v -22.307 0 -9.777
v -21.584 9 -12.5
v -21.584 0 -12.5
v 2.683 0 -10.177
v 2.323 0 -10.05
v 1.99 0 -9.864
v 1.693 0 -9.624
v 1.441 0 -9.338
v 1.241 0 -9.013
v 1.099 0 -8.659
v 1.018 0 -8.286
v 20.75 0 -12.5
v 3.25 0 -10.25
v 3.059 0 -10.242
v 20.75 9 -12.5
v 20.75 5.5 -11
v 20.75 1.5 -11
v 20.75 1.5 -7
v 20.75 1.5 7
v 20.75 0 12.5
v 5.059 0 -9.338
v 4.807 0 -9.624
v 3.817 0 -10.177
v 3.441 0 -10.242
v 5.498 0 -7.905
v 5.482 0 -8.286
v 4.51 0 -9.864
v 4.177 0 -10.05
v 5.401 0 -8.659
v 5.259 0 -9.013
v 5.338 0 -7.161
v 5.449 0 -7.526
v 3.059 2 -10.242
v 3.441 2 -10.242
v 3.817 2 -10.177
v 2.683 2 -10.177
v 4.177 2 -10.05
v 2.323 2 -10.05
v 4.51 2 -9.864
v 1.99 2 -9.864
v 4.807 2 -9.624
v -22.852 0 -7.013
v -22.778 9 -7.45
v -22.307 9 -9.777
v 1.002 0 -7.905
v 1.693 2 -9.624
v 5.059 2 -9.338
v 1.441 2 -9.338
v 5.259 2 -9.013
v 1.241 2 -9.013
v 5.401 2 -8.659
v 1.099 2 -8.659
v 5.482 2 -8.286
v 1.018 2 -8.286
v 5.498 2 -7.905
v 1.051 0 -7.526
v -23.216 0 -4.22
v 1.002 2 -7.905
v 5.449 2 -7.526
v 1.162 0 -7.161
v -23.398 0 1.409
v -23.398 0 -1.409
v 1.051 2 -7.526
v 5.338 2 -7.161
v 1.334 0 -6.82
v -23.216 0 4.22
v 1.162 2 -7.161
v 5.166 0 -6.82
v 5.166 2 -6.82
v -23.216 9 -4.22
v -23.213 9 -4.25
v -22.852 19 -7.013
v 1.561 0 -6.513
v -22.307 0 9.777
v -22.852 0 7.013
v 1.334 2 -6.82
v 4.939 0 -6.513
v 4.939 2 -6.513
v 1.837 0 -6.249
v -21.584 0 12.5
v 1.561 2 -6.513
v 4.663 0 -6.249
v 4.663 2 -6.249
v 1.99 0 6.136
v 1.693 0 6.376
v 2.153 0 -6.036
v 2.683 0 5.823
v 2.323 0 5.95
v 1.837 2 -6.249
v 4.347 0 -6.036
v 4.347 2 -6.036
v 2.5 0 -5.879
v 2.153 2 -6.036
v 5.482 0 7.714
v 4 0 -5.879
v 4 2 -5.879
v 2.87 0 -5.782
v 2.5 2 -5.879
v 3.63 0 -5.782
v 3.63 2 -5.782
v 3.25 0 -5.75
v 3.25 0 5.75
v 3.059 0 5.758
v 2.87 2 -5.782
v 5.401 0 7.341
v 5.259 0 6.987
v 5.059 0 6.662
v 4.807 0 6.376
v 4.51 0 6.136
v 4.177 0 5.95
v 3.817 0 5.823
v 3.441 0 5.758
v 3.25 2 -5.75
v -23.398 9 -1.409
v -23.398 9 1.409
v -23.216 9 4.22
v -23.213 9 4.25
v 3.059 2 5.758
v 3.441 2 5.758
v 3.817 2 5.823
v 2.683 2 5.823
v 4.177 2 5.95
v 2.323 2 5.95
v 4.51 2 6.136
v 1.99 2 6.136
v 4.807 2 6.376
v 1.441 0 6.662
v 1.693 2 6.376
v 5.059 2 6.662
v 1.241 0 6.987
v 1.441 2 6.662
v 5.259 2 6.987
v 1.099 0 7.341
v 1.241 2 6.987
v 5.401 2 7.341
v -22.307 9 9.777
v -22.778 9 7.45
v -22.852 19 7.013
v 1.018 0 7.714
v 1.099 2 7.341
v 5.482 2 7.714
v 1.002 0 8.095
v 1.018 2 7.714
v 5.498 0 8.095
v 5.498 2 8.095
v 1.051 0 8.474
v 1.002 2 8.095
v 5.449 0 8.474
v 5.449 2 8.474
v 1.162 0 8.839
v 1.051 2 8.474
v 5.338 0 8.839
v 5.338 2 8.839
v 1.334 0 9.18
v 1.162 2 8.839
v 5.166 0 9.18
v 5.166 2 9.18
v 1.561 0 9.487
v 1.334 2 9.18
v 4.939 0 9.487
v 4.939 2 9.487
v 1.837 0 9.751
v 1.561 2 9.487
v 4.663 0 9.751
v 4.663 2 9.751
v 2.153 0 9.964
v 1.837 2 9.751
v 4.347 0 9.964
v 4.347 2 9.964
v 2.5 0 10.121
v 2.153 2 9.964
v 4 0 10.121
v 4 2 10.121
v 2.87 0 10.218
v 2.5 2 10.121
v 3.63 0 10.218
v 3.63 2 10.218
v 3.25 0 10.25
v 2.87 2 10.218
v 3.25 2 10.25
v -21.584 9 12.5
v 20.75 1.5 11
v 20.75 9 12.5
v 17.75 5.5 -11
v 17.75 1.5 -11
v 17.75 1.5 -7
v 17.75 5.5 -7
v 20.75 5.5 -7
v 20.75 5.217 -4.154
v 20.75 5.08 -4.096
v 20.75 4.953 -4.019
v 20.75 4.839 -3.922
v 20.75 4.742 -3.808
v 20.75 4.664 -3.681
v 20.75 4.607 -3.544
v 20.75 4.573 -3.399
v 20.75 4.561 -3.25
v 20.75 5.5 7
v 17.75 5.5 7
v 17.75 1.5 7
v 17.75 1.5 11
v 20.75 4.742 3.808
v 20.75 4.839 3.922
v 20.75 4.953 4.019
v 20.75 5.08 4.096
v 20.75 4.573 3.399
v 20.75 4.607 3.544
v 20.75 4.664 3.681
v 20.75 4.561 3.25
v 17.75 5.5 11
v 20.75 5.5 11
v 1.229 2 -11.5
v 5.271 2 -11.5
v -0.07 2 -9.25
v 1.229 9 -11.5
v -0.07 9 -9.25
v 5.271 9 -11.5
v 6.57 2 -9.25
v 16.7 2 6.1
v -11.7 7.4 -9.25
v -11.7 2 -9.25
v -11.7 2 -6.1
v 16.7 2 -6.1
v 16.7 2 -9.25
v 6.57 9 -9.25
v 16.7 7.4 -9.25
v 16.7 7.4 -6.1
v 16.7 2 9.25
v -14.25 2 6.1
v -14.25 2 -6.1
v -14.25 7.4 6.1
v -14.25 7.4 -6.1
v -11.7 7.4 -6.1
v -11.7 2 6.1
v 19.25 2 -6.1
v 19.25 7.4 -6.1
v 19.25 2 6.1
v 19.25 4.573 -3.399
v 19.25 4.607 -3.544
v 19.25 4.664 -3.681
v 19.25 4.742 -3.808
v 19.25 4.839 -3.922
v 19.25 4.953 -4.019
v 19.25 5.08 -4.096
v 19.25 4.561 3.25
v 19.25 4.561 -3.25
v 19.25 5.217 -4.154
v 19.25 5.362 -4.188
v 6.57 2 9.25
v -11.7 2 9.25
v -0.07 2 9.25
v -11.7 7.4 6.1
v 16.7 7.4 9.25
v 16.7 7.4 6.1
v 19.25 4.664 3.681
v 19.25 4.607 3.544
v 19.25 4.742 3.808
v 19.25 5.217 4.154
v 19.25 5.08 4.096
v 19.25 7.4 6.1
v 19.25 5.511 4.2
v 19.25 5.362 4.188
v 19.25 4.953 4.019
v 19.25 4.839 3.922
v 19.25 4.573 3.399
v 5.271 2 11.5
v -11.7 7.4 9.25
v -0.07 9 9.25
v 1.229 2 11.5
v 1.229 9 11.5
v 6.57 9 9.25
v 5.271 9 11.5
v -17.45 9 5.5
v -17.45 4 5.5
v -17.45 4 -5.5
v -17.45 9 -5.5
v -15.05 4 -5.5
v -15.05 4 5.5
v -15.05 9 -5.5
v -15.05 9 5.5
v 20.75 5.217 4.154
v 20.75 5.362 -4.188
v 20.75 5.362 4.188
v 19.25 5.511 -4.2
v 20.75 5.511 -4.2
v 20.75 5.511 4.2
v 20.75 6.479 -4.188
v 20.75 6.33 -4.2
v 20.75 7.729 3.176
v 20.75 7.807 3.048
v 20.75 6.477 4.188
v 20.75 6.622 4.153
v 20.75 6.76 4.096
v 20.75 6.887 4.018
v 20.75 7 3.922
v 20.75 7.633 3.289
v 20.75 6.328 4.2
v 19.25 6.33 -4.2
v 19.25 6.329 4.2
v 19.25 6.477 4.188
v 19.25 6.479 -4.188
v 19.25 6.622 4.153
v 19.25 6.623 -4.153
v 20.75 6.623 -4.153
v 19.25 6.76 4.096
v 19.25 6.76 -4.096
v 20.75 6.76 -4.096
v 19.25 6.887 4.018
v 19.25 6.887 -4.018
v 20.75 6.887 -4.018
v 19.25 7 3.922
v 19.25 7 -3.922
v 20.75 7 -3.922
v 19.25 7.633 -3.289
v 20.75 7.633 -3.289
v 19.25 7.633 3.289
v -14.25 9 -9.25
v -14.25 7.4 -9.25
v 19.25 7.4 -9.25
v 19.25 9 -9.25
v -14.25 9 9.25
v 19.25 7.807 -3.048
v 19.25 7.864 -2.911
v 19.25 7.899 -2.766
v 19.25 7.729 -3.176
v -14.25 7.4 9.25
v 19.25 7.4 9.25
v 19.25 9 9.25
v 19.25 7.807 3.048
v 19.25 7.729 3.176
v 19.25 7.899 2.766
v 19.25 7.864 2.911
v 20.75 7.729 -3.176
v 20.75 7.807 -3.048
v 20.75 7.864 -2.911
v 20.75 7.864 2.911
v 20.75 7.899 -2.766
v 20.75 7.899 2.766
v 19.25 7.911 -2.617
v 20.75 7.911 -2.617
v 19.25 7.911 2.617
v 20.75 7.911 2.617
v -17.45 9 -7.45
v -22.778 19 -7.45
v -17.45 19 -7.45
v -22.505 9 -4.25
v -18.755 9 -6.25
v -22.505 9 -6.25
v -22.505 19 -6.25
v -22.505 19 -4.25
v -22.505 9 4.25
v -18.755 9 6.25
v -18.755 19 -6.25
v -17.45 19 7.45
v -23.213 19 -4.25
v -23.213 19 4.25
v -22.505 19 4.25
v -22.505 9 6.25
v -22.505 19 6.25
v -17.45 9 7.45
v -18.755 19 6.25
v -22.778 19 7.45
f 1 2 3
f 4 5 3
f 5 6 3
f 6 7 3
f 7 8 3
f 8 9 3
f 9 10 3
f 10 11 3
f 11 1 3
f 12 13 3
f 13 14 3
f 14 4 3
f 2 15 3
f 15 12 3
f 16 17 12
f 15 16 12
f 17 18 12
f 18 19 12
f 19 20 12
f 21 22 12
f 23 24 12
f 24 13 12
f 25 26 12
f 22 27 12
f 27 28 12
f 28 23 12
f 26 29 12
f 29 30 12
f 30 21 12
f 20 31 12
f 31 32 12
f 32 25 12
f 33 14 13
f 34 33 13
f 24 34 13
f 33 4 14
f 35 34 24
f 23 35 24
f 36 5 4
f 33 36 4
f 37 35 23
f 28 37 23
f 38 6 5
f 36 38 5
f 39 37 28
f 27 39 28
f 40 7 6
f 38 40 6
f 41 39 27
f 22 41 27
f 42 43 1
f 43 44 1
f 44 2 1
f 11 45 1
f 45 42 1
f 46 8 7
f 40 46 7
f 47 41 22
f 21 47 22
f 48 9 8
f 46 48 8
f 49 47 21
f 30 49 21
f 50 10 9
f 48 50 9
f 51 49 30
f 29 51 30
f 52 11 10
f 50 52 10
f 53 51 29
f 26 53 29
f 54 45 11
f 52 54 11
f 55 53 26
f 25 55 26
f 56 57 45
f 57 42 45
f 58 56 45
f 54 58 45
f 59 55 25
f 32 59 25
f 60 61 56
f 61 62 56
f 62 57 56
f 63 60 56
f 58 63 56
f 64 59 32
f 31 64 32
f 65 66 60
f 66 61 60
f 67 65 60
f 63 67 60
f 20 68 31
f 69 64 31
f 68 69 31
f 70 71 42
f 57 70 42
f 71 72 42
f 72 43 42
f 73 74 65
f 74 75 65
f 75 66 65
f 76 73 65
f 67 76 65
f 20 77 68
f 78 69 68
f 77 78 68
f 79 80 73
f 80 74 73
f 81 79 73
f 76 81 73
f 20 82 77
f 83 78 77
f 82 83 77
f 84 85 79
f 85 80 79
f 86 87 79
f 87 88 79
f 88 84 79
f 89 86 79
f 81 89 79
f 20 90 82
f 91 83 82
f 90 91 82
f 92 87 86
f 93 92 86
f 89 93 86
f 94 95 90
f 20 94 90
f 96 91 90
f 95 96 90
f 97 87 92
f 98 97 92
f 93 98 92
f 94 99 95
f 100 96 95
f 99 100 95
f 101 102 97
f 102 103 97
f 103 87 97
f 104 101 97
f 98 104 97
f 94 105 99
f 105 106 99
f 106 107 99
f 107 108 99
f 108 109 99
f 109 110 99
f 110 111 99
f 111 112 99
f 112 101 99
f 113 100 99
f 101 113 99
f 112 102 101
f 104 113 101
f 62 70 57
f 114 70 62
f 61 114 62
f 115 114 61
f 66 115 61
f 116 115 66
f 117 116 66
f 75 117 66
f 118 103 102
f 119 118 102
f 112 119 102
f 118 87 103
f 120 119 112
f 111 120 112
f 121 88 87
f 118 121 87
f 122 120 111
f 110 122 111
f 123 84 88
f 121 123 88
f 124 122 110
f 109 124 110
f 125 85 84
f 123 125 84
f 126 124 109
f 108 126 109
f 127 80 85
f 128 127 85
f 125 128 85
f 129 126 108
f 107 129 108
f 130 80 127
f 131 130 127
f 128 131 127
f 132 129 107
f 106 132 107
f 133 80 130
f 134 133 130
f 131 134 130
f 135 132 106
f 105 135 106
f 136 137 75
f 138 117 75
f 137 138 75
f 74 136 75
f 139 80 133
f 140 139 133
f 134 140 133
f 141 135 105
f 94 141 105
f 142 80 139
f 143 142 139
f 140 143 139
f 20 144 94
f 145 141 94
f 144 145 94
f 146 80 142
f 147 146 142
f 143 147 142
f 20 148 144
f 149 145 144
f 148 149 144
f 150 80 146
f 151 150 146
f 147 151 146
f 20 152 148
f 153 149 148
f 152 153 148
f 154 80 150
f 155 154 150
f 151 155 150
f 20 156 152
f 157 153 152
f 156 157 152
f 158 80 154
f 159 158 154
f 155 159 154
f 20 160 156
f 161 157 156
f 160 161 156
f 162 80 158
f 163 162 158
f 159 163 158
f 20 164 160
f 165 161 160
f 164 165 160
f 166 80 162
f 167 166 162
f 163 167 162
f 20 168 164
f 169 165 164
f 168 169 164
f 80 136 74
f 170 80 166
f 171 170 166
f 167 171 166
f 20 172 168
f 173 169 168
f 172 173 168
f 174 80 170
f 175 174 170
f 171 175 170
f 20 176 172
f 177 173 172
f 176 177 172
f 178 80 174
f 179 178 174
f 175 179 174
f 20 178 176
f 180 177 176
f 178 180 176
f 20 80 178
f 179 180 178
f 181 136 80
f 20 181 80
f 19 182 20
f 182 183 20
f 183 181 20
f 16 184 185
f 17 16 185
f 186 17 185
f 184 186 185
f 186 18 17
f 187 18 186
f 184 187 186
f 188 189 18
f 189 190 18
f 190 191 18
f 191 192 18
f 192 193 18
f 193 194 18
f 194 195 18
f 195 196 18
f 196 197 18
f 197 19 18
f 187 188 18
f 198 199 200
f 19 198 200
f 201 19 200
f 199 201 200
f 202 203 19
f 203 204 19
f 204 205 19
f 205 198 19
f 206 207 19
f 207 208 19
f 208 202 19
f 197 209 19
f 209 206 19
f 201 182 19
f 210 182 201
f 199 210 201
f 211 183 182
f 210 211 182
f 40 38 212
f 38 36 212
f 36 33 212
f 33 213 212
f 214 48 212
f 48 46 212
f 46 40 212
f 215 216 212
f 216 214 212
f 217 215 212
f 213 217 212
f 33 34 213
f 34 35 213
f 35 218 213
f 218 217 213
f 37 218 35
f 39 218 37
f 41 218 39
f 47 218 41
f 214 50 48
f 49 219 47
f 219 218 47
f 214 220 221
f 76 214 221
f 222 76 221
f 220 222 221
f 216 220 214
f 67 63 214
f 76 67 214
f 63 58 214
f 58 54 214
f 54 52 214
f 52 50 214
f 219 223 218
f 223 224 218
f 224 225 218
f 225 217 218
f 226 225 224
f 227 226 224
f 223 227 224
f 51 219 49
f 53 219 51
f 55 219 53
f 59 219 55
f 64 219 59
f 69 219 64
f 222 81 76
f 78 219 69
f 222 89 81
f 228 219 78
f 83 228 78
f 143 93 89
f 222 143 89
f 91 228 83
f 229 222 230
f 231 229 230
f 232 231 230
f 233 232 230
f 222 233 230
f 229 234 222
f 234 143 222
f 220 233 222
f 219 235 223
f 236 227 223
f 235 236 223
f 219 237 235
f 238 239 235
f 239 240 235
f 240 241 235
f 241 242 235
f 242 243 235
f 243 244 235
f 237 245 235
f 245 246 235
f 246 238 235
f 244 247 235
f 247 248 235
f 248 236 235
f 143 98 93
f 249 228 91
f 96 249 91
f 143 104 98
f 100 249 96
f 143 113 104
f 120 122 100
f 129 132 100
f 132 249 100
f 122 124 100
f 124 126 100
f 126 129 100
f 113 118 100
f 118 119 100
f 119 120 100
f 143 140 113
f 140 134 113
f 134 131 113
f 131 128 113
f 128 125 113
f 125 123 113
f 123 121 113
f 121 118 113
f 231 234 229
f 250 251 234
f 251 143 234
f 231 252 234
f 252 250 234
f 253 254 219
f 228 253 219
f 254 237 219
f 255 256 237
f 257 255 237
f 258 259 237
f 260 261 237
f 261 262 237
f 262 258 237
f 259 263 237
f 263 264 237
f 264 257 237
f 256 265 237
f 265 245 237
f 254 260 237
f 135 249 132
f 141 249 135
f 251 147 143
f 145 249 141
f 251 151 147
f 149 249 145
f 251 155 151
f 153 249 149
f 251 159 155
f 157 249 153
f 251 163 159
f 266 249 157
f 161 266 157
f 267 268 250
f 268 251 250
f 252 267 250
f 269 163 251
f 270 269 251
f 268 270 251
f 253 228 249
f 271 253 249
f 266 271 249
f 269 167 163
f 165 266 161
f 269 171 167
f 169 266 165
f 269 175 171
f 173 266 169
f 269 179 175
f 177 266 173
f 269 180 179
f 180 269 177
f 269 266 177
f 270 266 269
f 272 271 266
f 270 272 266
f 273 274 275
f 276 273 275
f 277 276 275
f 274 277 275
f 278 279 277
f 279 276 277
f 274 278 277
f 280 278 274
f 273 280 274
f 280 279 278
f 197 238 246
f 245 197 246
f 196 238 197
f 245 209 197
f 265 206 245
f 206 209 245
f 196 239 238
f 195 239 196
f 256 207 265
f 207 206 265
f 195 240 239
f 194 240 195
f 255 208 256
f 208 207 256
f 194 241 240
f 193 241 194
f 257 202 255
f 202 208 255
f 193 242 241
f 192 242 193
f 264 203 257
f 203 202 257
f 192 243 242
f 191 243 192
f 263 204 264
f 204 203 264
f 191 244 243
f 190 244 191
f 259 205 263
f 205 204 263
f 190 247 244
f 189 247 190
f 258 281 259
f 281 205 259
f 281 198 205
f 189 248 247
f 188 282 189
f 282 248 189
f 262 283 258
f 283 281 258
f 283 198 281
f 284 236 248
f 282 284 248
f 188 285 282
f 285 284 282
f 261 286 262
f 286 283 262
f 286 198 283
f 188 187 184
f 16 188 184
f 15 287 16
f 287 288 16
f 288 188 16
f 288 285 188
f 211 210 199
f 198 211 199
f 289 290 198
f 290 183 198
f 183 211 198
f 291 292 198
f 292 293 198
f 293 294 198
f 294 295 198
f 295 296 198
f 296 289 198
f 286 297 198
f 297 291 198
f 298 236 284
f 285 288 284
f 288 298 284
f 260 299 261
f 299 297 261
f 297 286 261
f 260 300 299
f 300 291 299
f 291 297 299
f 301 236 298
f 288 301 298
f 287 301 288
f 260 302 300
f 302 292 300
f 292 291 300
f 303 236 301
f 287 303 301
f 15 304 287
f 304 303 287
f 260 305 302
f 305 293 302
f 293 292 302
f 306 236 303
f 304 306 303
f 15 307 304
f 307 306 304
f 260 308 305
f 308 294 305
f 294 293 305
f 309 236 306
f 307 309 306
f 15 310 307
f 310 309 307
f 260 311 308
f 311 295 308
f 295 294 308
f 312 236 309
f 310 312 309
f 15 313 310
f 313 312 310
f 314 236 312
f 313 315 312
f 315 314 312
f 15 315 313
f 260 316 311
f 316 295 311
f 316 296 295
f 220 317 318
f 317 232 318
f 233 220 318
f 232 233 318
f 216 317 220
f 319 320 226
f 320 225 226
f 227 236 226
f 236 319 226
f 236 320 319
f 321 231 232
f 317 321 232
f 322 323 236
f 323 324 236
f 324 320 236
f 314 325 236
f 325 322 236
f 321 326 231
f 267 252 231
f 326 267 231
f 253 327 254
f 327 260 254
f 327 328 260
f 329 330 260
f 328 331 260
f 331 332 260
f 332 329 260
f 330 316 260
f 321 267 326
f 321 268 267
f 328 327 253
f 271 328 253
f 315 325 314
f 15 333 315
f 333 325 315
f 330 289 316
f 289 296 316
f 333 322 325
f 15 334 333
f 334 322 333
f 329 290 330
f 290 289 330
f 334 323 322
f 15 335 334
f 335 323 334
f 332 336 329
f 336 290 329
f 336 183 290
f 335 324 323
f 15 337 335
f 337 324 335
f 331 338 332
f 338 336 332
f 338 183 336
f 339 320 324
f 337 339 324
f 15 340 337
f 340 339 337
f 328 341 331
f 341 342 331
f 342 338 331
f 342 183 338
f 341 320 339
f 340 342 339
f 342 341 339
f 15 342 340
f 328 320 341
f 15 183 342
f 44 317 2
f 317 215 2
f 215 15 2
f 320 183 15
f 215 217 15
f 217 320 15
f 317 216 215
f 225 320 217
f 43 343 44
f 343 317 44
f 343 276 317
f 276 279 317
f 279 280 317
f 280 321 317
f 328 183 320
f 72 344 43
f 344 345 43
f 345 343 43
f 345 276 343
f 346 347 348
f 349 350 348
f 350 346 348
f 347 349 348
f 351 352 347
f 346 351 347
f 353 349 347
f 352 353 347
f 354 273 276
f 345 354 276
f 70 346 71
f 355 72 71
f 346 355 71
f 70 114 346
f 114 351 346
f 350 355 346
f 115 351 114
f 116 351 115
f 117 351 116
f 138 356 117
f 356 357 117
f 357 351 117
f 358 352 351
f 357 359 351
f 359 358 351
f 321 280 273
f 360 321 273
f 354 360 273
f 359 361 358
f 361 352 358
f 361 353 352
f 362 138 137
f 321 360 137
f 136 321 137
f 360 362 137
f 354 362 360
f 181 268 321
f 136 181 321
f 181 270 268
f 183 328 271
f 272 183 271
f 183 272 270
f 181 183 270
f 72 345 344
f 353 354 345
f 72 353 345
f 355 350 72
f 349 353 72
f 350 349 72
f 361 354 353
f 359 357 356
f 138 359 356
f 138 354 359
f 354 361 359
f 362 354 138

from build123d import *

# Parameters (mm, degrees)
BOSS_EXTRUDE1_DEPTH  = 9
SKETCH17_W           = 33.5
SKETCH17_H           = 18.5
CUT_EXTRUDE8_DEPTH   = 7
SKETCH18_W           = 2.55
SKETCH18_H           = 3.15
BOSS_EXTRUDE2_DEPTH  = 5.4
CUT_EXTRUDE13_REACH  = 49.509
CUT_EXTRUDE15_REACH  = 30.68
SKETCH27_R           = 2.25
CUT_EXTRUDE14_DEPTH  = 7
SKETCH28_W           = 2.4
SKETCH28_H           = 11
CUT_EXTRUDE16_DEPTH  = 5
SKETCH29_W           = 4
SKETCH29_H           = 4
CUT_EXTRUDE17_DEPTH  = 3
BOSS_EXTRUDE4_DEPTH  = 10
SKETCH33_OUTSIDE_W   = 57.507
SKETCH33_OUTSIDE_H   = 43.336
SKETCH33_OUTSIDE_W_2 = 61.074574046
SKETCH33_OUTSIDE_H_2 = 25
CUT_EXTRUDE24_DEPTH  = 34.683188999


with BuildPart() as part:
    # Sketch1 → Boss-Extrude1 (new body)
    with BuildSketch(Plane(origin=(0, 0, 0), x_dir=(1, 0, 0), z_dir=(0, 1, 0))):
        with BuildLine():
            Line((-20.75, 15), (20.75, 15))
            Line((20.75, 15), (20.75, -15))
            Line((20.75, -15), (-20.75, -15))
            ThreePointArc((-20.75, -15), (-23.421298451, 0), (-20.75, 15))
        make_face()
    extrude(amount=BOSS_EXTRUDE1_DEPTH)

    # Sketch17 → Cut-Extrude8 (cut)
    with BuildSketch(Plane(origin=(0, 9, 0), x_dir=(1, 0, 0), z_dir=(0, 1, 0))):
        with Locations((2.5, 0)):
            Rectangle(SKETCH17_W, SKETCH17_H)
    extrude(amount=-CUT_EXTRUDE8_DEPTH, mode=Mode.SUBTRACT)

    # Sketch18 → Boss-Extrude2 (add)
    with BuildSketch(Plane(origin=(0, 2, 0), x_dir=(1, 0, 0), z_dir=(0, 1, 0))):
        with Locations((-12.975, 7.675)):
            Rectangle(SKETCH18_W, SKETCH18_H)
        with Locations((-12.975, -7.675)):
            Rectangle(SKETCH18_W, SKETCH18_H)
        with Locations((17.975, 7.675)):
            Rectangle(SKETCH18_W, SKETCH18_H)
        with Locations((17.975, -7.675)):
            Rectangle(SKETCH18_W, SKETCH18_H)
    extrude(amount=BOSS_EXTRUDE2_DEPTH)

    # Sketch25 → Cut-Extrude13 (cut, up to next)
    with BuildSketch(Plane(origin=(20.75, 0, 0), x_dir=(0, 0, -1), z_dir=(1, 0, 0)), mode=Mode.PRIVATE) as cut_extrude13_sk1:
        with BuildLine():
            Line((3.921751442, 6.999799178), (3.28890873, 7.63264189))
            ThreePointArc((3.28890873, 7.63264189), (2.980706548, 7.838576004), (2.617157288, 7.910890448))
            Line((2.617157288, 7.910890448), (-2.617157288, 7.910890448))
            ThreePointArc((-2.617157288, 7.910890448), (-2.980706548, 7.838576004), (-3.28890873, 7.63264189))
            Line((-3.28890873, 7.63264189), (-3.921751442, 6.999799178))
            ThreePointArc((-3.921751442, 6.999799178), (-4.127534378, 6.691961757), (-4.199999672, 6.328837431))
            Line((-4.199999672, 6.328837431), (-4.2, 5.510890448))
            ThreePointArc((-4.2, 5.510890448), (-3.921751442, 4.839139006), (-3.25, 4.560890448))
            Line((-3.25, 4.560890448), (3.25, 4.560890448))
            ThreePointArc((3.25, 4.560890448), (3.921751442, 4.839139006), (4.2, 5.510890448))
            Line((4.2, 5.510890448), (4.2, 6.329548061))
            Line((4.2, 6.329548061), (4.199995261, 6.331048392))
            ThreePointArc((4.199995261, 6.331048392), (4.12711031, 6.692982667), (3.921751442, 6.999799178))
        make_face()
    cut_extrude13_tool1 = extrude(cut_extrude13_sk1.sketch, amount=-CUT_EXTRUDE13_REACH, mode=Mode.PRIVATE) & part.part
    add(cut_extrude13_tool1.solids().sort_by_distance((20.75, 6.185522, 0))[0], mode=Mode.SUBTRACT)

    # Sketch27 → Cut-Extrude15 (cut, up to next)
    with BuildSketch(Plane(origin=(0, 2, 0), x_dir=(1, 0, 0), z_dir=(0, 1, 0)), mode=Mode.PRIVATE) as cut_extrude15_sk1:
        with Locations(Location((3.25, -8, 0), (0, 0, 326.251011404))):
            Circle(SKETCH27_R)
    cut_extrude15_tool1 = extrude(cut_extrude15_sk1.sketch, amount=-CUT_EXTRUDE15_REACH, mode=Mode.PRIVATE) & part.part
    # Sketch27 → Cut-Extrude15 (cut, up to next)
    with BuildSketch(Plane(origin=(0, 2, 0), x_dir=(1, 0, 0), z_dir=(0, 1, 0)), mode=Mode.PRIVATE) as cut_extrude15_sk2:
        with Locations(Location((3.25, 8, 0), (0, 0, 33.748988596))):
            Circle(SKETCH27_R)
    cut_extrude15_tool2 = extrude(cut_extrude15_sk2.sketch, amount=-CUT_EXTRUDE15_REACH, mode=Mode.PRIVATE) & part.part
    add(cut_extrude15_tool1.solids().sort_by_distance((3.25, 2, 8))[0], mode=Mode.SUBTRACT)
    add(cut_extrude15_tool2.solids().sort_by_distance((3.25, 2, -8))[0], mode=Mode.SUBTRACT)

    # Sketch26 → Cut-Extrude14 (cut)
    with BuildSketch(Plane(origin=(0, 9, 0), x_dir=(1, 0, 0), z_dir=(0, 1, 0))):
        Polygon((5.270725942, -4.5), (1.229274058, -4.5), (-0.791451884, -8), (1.229274058, -11.5), (5.270725942, -11.5), (7.291451884, -8), align=None)
        Polygon((7.291451884, 8), (5.270725942, 4.5), (1.229274058, 4.5), (-0.791451884, 8), (1.229274058, 11.5), (5.270725942, 11.5), align=None)
    extrude(amount=-CUT_EXTRUDE14_DEPTH, mode=Mode.SUBTRACT)

    # Sketch28 → Cut-Extrude16 (cut)
    with BuildSketch(Plane(origin=(0, 9, 0), x_dir=(1, 0, 0), z_dir=(0, 1, 0))):
        with Locations((-16.25, 0)):
            Rectangle(SKETCH28_W, SKETCH28_H)
    extrude(amount=-CUT_EXTRUDE16_DEPTH, mode=Mode.SUBTRACT)

    # Sketch29 → Cut-Extrude17 (cut)
    with BuildSketch(Plane(origin=(20.75, 0, 0), x_dir=(0, 0, -1), z_dir=(1, 0, 0))):
        with Locations((-9, 3.5)):
            Rectangle(SKETCH29_W, SKETCH29_H)
        with Locations((9, 3.5)):
            Rectangle(SKETCH29_W, SKETCH29_H)
    extrude(amount=-CUT_EXTRUDE17_DEPTH, mode=Mode.SUBTRACT)

    # Sketch32 → Boss-Extrude4 (add)
    with BuildSketch(Plane(origin=(0, 9, 0), x_dir=(1, 0, 0), z_dir=(0, 1, 0))):
        with BuildLine():
            Line((-22.005035217, 6.25), (-18.755035217, 6.25))
            Line((-18.755035217, 6.25), (-18.755035217, -6.25))
            Line((-18.755035217, -6.25), (-22.505035217, -6.25))
            Line((-22.505035217, -6.25), (-22.505035217, -4.25))
            Line((-22.505035217, -4.25), (-23.212945043, -4.25))
            ThreePointArc((-23.212945043, -4.25), (-23.025133018, -5.854043824), (-22.777840007, -7.45))
            Line((-22.777840007, -7.45), (-17.45, -7.45))
            Line((-17.45, -7.45), (-17.45, -5.5))
            Line((-17.45, -5.5), (-17.45, 5.5))
            Line((-17.45, 5.5), (-17.45, 7.45))
            Line((-17.45, 7.45), (-22.777840007, 7.45))
            ThreePointArc((-22.777840007, 7.45), (-23.025133018, 5.854043824), (-23.212945043, 4.25))
            Line((-23.212945043, 4.25), (-22.505035217, 4.25))
            Line((-22.505035217, 4.25), (-22.505035217, 6.25))
            Line((-22.505035217, 6.25), (-22.005035217, 6.25))
        make_face()
    extrude(amount=BOSS_EXTRUDE4_DEPTH)

    # Sketch33 outside → Cut-Extrude24 (cut, through all)
    with BuildSketch(Plane(origin=(0, 0, 0), x_dir=(1, 0, 0), z_dir=(0, 1, 0))):
        with Locations((-1.3355, 0)):
            Rectangle(SKETCH33_OUTSIDE_W, SKETCH33_OUTSIDE_H)
        Rectangle(SKETCH33_OUTSIDE_W_2, SKETCH33_OUTSIDE_H_2, mode=Mode.SUBTRACT)
    extrude(amount=CUT_EXTRUDE24_DEPTH, mode=Mode.SUBTRACT)


solid = part.part
